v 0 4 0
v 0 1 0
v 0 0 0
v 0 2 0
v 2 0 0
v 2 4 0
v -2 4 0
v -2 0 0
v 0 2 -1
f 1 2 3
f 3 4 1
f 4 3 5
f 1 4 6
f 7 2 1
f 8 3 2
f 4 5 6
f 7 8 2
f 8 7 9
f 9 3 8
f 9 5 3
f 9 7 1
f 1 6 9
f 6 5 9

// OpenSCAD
polyhedron([
[0,1,0],  //0
[0,4,0],  //1
[0,0,0],  //2
[0,2,0],  //3
[2,0,0],  //4
[2,4,0],  //5
[-2,4,0], //6
[-2,0,0], //7
[0,2,-1] //8
],[
[0,1,2],
[2,1,3],
[2,3,4],
[3,1,5],
[0,6,1],
[0,2,7],
[3,5,4],
[7,6,0],
[6,7,8],
[2,8,7],
[4,8,2],
[1,6,8],
[5,1,8],
[4,5,8]
]);
